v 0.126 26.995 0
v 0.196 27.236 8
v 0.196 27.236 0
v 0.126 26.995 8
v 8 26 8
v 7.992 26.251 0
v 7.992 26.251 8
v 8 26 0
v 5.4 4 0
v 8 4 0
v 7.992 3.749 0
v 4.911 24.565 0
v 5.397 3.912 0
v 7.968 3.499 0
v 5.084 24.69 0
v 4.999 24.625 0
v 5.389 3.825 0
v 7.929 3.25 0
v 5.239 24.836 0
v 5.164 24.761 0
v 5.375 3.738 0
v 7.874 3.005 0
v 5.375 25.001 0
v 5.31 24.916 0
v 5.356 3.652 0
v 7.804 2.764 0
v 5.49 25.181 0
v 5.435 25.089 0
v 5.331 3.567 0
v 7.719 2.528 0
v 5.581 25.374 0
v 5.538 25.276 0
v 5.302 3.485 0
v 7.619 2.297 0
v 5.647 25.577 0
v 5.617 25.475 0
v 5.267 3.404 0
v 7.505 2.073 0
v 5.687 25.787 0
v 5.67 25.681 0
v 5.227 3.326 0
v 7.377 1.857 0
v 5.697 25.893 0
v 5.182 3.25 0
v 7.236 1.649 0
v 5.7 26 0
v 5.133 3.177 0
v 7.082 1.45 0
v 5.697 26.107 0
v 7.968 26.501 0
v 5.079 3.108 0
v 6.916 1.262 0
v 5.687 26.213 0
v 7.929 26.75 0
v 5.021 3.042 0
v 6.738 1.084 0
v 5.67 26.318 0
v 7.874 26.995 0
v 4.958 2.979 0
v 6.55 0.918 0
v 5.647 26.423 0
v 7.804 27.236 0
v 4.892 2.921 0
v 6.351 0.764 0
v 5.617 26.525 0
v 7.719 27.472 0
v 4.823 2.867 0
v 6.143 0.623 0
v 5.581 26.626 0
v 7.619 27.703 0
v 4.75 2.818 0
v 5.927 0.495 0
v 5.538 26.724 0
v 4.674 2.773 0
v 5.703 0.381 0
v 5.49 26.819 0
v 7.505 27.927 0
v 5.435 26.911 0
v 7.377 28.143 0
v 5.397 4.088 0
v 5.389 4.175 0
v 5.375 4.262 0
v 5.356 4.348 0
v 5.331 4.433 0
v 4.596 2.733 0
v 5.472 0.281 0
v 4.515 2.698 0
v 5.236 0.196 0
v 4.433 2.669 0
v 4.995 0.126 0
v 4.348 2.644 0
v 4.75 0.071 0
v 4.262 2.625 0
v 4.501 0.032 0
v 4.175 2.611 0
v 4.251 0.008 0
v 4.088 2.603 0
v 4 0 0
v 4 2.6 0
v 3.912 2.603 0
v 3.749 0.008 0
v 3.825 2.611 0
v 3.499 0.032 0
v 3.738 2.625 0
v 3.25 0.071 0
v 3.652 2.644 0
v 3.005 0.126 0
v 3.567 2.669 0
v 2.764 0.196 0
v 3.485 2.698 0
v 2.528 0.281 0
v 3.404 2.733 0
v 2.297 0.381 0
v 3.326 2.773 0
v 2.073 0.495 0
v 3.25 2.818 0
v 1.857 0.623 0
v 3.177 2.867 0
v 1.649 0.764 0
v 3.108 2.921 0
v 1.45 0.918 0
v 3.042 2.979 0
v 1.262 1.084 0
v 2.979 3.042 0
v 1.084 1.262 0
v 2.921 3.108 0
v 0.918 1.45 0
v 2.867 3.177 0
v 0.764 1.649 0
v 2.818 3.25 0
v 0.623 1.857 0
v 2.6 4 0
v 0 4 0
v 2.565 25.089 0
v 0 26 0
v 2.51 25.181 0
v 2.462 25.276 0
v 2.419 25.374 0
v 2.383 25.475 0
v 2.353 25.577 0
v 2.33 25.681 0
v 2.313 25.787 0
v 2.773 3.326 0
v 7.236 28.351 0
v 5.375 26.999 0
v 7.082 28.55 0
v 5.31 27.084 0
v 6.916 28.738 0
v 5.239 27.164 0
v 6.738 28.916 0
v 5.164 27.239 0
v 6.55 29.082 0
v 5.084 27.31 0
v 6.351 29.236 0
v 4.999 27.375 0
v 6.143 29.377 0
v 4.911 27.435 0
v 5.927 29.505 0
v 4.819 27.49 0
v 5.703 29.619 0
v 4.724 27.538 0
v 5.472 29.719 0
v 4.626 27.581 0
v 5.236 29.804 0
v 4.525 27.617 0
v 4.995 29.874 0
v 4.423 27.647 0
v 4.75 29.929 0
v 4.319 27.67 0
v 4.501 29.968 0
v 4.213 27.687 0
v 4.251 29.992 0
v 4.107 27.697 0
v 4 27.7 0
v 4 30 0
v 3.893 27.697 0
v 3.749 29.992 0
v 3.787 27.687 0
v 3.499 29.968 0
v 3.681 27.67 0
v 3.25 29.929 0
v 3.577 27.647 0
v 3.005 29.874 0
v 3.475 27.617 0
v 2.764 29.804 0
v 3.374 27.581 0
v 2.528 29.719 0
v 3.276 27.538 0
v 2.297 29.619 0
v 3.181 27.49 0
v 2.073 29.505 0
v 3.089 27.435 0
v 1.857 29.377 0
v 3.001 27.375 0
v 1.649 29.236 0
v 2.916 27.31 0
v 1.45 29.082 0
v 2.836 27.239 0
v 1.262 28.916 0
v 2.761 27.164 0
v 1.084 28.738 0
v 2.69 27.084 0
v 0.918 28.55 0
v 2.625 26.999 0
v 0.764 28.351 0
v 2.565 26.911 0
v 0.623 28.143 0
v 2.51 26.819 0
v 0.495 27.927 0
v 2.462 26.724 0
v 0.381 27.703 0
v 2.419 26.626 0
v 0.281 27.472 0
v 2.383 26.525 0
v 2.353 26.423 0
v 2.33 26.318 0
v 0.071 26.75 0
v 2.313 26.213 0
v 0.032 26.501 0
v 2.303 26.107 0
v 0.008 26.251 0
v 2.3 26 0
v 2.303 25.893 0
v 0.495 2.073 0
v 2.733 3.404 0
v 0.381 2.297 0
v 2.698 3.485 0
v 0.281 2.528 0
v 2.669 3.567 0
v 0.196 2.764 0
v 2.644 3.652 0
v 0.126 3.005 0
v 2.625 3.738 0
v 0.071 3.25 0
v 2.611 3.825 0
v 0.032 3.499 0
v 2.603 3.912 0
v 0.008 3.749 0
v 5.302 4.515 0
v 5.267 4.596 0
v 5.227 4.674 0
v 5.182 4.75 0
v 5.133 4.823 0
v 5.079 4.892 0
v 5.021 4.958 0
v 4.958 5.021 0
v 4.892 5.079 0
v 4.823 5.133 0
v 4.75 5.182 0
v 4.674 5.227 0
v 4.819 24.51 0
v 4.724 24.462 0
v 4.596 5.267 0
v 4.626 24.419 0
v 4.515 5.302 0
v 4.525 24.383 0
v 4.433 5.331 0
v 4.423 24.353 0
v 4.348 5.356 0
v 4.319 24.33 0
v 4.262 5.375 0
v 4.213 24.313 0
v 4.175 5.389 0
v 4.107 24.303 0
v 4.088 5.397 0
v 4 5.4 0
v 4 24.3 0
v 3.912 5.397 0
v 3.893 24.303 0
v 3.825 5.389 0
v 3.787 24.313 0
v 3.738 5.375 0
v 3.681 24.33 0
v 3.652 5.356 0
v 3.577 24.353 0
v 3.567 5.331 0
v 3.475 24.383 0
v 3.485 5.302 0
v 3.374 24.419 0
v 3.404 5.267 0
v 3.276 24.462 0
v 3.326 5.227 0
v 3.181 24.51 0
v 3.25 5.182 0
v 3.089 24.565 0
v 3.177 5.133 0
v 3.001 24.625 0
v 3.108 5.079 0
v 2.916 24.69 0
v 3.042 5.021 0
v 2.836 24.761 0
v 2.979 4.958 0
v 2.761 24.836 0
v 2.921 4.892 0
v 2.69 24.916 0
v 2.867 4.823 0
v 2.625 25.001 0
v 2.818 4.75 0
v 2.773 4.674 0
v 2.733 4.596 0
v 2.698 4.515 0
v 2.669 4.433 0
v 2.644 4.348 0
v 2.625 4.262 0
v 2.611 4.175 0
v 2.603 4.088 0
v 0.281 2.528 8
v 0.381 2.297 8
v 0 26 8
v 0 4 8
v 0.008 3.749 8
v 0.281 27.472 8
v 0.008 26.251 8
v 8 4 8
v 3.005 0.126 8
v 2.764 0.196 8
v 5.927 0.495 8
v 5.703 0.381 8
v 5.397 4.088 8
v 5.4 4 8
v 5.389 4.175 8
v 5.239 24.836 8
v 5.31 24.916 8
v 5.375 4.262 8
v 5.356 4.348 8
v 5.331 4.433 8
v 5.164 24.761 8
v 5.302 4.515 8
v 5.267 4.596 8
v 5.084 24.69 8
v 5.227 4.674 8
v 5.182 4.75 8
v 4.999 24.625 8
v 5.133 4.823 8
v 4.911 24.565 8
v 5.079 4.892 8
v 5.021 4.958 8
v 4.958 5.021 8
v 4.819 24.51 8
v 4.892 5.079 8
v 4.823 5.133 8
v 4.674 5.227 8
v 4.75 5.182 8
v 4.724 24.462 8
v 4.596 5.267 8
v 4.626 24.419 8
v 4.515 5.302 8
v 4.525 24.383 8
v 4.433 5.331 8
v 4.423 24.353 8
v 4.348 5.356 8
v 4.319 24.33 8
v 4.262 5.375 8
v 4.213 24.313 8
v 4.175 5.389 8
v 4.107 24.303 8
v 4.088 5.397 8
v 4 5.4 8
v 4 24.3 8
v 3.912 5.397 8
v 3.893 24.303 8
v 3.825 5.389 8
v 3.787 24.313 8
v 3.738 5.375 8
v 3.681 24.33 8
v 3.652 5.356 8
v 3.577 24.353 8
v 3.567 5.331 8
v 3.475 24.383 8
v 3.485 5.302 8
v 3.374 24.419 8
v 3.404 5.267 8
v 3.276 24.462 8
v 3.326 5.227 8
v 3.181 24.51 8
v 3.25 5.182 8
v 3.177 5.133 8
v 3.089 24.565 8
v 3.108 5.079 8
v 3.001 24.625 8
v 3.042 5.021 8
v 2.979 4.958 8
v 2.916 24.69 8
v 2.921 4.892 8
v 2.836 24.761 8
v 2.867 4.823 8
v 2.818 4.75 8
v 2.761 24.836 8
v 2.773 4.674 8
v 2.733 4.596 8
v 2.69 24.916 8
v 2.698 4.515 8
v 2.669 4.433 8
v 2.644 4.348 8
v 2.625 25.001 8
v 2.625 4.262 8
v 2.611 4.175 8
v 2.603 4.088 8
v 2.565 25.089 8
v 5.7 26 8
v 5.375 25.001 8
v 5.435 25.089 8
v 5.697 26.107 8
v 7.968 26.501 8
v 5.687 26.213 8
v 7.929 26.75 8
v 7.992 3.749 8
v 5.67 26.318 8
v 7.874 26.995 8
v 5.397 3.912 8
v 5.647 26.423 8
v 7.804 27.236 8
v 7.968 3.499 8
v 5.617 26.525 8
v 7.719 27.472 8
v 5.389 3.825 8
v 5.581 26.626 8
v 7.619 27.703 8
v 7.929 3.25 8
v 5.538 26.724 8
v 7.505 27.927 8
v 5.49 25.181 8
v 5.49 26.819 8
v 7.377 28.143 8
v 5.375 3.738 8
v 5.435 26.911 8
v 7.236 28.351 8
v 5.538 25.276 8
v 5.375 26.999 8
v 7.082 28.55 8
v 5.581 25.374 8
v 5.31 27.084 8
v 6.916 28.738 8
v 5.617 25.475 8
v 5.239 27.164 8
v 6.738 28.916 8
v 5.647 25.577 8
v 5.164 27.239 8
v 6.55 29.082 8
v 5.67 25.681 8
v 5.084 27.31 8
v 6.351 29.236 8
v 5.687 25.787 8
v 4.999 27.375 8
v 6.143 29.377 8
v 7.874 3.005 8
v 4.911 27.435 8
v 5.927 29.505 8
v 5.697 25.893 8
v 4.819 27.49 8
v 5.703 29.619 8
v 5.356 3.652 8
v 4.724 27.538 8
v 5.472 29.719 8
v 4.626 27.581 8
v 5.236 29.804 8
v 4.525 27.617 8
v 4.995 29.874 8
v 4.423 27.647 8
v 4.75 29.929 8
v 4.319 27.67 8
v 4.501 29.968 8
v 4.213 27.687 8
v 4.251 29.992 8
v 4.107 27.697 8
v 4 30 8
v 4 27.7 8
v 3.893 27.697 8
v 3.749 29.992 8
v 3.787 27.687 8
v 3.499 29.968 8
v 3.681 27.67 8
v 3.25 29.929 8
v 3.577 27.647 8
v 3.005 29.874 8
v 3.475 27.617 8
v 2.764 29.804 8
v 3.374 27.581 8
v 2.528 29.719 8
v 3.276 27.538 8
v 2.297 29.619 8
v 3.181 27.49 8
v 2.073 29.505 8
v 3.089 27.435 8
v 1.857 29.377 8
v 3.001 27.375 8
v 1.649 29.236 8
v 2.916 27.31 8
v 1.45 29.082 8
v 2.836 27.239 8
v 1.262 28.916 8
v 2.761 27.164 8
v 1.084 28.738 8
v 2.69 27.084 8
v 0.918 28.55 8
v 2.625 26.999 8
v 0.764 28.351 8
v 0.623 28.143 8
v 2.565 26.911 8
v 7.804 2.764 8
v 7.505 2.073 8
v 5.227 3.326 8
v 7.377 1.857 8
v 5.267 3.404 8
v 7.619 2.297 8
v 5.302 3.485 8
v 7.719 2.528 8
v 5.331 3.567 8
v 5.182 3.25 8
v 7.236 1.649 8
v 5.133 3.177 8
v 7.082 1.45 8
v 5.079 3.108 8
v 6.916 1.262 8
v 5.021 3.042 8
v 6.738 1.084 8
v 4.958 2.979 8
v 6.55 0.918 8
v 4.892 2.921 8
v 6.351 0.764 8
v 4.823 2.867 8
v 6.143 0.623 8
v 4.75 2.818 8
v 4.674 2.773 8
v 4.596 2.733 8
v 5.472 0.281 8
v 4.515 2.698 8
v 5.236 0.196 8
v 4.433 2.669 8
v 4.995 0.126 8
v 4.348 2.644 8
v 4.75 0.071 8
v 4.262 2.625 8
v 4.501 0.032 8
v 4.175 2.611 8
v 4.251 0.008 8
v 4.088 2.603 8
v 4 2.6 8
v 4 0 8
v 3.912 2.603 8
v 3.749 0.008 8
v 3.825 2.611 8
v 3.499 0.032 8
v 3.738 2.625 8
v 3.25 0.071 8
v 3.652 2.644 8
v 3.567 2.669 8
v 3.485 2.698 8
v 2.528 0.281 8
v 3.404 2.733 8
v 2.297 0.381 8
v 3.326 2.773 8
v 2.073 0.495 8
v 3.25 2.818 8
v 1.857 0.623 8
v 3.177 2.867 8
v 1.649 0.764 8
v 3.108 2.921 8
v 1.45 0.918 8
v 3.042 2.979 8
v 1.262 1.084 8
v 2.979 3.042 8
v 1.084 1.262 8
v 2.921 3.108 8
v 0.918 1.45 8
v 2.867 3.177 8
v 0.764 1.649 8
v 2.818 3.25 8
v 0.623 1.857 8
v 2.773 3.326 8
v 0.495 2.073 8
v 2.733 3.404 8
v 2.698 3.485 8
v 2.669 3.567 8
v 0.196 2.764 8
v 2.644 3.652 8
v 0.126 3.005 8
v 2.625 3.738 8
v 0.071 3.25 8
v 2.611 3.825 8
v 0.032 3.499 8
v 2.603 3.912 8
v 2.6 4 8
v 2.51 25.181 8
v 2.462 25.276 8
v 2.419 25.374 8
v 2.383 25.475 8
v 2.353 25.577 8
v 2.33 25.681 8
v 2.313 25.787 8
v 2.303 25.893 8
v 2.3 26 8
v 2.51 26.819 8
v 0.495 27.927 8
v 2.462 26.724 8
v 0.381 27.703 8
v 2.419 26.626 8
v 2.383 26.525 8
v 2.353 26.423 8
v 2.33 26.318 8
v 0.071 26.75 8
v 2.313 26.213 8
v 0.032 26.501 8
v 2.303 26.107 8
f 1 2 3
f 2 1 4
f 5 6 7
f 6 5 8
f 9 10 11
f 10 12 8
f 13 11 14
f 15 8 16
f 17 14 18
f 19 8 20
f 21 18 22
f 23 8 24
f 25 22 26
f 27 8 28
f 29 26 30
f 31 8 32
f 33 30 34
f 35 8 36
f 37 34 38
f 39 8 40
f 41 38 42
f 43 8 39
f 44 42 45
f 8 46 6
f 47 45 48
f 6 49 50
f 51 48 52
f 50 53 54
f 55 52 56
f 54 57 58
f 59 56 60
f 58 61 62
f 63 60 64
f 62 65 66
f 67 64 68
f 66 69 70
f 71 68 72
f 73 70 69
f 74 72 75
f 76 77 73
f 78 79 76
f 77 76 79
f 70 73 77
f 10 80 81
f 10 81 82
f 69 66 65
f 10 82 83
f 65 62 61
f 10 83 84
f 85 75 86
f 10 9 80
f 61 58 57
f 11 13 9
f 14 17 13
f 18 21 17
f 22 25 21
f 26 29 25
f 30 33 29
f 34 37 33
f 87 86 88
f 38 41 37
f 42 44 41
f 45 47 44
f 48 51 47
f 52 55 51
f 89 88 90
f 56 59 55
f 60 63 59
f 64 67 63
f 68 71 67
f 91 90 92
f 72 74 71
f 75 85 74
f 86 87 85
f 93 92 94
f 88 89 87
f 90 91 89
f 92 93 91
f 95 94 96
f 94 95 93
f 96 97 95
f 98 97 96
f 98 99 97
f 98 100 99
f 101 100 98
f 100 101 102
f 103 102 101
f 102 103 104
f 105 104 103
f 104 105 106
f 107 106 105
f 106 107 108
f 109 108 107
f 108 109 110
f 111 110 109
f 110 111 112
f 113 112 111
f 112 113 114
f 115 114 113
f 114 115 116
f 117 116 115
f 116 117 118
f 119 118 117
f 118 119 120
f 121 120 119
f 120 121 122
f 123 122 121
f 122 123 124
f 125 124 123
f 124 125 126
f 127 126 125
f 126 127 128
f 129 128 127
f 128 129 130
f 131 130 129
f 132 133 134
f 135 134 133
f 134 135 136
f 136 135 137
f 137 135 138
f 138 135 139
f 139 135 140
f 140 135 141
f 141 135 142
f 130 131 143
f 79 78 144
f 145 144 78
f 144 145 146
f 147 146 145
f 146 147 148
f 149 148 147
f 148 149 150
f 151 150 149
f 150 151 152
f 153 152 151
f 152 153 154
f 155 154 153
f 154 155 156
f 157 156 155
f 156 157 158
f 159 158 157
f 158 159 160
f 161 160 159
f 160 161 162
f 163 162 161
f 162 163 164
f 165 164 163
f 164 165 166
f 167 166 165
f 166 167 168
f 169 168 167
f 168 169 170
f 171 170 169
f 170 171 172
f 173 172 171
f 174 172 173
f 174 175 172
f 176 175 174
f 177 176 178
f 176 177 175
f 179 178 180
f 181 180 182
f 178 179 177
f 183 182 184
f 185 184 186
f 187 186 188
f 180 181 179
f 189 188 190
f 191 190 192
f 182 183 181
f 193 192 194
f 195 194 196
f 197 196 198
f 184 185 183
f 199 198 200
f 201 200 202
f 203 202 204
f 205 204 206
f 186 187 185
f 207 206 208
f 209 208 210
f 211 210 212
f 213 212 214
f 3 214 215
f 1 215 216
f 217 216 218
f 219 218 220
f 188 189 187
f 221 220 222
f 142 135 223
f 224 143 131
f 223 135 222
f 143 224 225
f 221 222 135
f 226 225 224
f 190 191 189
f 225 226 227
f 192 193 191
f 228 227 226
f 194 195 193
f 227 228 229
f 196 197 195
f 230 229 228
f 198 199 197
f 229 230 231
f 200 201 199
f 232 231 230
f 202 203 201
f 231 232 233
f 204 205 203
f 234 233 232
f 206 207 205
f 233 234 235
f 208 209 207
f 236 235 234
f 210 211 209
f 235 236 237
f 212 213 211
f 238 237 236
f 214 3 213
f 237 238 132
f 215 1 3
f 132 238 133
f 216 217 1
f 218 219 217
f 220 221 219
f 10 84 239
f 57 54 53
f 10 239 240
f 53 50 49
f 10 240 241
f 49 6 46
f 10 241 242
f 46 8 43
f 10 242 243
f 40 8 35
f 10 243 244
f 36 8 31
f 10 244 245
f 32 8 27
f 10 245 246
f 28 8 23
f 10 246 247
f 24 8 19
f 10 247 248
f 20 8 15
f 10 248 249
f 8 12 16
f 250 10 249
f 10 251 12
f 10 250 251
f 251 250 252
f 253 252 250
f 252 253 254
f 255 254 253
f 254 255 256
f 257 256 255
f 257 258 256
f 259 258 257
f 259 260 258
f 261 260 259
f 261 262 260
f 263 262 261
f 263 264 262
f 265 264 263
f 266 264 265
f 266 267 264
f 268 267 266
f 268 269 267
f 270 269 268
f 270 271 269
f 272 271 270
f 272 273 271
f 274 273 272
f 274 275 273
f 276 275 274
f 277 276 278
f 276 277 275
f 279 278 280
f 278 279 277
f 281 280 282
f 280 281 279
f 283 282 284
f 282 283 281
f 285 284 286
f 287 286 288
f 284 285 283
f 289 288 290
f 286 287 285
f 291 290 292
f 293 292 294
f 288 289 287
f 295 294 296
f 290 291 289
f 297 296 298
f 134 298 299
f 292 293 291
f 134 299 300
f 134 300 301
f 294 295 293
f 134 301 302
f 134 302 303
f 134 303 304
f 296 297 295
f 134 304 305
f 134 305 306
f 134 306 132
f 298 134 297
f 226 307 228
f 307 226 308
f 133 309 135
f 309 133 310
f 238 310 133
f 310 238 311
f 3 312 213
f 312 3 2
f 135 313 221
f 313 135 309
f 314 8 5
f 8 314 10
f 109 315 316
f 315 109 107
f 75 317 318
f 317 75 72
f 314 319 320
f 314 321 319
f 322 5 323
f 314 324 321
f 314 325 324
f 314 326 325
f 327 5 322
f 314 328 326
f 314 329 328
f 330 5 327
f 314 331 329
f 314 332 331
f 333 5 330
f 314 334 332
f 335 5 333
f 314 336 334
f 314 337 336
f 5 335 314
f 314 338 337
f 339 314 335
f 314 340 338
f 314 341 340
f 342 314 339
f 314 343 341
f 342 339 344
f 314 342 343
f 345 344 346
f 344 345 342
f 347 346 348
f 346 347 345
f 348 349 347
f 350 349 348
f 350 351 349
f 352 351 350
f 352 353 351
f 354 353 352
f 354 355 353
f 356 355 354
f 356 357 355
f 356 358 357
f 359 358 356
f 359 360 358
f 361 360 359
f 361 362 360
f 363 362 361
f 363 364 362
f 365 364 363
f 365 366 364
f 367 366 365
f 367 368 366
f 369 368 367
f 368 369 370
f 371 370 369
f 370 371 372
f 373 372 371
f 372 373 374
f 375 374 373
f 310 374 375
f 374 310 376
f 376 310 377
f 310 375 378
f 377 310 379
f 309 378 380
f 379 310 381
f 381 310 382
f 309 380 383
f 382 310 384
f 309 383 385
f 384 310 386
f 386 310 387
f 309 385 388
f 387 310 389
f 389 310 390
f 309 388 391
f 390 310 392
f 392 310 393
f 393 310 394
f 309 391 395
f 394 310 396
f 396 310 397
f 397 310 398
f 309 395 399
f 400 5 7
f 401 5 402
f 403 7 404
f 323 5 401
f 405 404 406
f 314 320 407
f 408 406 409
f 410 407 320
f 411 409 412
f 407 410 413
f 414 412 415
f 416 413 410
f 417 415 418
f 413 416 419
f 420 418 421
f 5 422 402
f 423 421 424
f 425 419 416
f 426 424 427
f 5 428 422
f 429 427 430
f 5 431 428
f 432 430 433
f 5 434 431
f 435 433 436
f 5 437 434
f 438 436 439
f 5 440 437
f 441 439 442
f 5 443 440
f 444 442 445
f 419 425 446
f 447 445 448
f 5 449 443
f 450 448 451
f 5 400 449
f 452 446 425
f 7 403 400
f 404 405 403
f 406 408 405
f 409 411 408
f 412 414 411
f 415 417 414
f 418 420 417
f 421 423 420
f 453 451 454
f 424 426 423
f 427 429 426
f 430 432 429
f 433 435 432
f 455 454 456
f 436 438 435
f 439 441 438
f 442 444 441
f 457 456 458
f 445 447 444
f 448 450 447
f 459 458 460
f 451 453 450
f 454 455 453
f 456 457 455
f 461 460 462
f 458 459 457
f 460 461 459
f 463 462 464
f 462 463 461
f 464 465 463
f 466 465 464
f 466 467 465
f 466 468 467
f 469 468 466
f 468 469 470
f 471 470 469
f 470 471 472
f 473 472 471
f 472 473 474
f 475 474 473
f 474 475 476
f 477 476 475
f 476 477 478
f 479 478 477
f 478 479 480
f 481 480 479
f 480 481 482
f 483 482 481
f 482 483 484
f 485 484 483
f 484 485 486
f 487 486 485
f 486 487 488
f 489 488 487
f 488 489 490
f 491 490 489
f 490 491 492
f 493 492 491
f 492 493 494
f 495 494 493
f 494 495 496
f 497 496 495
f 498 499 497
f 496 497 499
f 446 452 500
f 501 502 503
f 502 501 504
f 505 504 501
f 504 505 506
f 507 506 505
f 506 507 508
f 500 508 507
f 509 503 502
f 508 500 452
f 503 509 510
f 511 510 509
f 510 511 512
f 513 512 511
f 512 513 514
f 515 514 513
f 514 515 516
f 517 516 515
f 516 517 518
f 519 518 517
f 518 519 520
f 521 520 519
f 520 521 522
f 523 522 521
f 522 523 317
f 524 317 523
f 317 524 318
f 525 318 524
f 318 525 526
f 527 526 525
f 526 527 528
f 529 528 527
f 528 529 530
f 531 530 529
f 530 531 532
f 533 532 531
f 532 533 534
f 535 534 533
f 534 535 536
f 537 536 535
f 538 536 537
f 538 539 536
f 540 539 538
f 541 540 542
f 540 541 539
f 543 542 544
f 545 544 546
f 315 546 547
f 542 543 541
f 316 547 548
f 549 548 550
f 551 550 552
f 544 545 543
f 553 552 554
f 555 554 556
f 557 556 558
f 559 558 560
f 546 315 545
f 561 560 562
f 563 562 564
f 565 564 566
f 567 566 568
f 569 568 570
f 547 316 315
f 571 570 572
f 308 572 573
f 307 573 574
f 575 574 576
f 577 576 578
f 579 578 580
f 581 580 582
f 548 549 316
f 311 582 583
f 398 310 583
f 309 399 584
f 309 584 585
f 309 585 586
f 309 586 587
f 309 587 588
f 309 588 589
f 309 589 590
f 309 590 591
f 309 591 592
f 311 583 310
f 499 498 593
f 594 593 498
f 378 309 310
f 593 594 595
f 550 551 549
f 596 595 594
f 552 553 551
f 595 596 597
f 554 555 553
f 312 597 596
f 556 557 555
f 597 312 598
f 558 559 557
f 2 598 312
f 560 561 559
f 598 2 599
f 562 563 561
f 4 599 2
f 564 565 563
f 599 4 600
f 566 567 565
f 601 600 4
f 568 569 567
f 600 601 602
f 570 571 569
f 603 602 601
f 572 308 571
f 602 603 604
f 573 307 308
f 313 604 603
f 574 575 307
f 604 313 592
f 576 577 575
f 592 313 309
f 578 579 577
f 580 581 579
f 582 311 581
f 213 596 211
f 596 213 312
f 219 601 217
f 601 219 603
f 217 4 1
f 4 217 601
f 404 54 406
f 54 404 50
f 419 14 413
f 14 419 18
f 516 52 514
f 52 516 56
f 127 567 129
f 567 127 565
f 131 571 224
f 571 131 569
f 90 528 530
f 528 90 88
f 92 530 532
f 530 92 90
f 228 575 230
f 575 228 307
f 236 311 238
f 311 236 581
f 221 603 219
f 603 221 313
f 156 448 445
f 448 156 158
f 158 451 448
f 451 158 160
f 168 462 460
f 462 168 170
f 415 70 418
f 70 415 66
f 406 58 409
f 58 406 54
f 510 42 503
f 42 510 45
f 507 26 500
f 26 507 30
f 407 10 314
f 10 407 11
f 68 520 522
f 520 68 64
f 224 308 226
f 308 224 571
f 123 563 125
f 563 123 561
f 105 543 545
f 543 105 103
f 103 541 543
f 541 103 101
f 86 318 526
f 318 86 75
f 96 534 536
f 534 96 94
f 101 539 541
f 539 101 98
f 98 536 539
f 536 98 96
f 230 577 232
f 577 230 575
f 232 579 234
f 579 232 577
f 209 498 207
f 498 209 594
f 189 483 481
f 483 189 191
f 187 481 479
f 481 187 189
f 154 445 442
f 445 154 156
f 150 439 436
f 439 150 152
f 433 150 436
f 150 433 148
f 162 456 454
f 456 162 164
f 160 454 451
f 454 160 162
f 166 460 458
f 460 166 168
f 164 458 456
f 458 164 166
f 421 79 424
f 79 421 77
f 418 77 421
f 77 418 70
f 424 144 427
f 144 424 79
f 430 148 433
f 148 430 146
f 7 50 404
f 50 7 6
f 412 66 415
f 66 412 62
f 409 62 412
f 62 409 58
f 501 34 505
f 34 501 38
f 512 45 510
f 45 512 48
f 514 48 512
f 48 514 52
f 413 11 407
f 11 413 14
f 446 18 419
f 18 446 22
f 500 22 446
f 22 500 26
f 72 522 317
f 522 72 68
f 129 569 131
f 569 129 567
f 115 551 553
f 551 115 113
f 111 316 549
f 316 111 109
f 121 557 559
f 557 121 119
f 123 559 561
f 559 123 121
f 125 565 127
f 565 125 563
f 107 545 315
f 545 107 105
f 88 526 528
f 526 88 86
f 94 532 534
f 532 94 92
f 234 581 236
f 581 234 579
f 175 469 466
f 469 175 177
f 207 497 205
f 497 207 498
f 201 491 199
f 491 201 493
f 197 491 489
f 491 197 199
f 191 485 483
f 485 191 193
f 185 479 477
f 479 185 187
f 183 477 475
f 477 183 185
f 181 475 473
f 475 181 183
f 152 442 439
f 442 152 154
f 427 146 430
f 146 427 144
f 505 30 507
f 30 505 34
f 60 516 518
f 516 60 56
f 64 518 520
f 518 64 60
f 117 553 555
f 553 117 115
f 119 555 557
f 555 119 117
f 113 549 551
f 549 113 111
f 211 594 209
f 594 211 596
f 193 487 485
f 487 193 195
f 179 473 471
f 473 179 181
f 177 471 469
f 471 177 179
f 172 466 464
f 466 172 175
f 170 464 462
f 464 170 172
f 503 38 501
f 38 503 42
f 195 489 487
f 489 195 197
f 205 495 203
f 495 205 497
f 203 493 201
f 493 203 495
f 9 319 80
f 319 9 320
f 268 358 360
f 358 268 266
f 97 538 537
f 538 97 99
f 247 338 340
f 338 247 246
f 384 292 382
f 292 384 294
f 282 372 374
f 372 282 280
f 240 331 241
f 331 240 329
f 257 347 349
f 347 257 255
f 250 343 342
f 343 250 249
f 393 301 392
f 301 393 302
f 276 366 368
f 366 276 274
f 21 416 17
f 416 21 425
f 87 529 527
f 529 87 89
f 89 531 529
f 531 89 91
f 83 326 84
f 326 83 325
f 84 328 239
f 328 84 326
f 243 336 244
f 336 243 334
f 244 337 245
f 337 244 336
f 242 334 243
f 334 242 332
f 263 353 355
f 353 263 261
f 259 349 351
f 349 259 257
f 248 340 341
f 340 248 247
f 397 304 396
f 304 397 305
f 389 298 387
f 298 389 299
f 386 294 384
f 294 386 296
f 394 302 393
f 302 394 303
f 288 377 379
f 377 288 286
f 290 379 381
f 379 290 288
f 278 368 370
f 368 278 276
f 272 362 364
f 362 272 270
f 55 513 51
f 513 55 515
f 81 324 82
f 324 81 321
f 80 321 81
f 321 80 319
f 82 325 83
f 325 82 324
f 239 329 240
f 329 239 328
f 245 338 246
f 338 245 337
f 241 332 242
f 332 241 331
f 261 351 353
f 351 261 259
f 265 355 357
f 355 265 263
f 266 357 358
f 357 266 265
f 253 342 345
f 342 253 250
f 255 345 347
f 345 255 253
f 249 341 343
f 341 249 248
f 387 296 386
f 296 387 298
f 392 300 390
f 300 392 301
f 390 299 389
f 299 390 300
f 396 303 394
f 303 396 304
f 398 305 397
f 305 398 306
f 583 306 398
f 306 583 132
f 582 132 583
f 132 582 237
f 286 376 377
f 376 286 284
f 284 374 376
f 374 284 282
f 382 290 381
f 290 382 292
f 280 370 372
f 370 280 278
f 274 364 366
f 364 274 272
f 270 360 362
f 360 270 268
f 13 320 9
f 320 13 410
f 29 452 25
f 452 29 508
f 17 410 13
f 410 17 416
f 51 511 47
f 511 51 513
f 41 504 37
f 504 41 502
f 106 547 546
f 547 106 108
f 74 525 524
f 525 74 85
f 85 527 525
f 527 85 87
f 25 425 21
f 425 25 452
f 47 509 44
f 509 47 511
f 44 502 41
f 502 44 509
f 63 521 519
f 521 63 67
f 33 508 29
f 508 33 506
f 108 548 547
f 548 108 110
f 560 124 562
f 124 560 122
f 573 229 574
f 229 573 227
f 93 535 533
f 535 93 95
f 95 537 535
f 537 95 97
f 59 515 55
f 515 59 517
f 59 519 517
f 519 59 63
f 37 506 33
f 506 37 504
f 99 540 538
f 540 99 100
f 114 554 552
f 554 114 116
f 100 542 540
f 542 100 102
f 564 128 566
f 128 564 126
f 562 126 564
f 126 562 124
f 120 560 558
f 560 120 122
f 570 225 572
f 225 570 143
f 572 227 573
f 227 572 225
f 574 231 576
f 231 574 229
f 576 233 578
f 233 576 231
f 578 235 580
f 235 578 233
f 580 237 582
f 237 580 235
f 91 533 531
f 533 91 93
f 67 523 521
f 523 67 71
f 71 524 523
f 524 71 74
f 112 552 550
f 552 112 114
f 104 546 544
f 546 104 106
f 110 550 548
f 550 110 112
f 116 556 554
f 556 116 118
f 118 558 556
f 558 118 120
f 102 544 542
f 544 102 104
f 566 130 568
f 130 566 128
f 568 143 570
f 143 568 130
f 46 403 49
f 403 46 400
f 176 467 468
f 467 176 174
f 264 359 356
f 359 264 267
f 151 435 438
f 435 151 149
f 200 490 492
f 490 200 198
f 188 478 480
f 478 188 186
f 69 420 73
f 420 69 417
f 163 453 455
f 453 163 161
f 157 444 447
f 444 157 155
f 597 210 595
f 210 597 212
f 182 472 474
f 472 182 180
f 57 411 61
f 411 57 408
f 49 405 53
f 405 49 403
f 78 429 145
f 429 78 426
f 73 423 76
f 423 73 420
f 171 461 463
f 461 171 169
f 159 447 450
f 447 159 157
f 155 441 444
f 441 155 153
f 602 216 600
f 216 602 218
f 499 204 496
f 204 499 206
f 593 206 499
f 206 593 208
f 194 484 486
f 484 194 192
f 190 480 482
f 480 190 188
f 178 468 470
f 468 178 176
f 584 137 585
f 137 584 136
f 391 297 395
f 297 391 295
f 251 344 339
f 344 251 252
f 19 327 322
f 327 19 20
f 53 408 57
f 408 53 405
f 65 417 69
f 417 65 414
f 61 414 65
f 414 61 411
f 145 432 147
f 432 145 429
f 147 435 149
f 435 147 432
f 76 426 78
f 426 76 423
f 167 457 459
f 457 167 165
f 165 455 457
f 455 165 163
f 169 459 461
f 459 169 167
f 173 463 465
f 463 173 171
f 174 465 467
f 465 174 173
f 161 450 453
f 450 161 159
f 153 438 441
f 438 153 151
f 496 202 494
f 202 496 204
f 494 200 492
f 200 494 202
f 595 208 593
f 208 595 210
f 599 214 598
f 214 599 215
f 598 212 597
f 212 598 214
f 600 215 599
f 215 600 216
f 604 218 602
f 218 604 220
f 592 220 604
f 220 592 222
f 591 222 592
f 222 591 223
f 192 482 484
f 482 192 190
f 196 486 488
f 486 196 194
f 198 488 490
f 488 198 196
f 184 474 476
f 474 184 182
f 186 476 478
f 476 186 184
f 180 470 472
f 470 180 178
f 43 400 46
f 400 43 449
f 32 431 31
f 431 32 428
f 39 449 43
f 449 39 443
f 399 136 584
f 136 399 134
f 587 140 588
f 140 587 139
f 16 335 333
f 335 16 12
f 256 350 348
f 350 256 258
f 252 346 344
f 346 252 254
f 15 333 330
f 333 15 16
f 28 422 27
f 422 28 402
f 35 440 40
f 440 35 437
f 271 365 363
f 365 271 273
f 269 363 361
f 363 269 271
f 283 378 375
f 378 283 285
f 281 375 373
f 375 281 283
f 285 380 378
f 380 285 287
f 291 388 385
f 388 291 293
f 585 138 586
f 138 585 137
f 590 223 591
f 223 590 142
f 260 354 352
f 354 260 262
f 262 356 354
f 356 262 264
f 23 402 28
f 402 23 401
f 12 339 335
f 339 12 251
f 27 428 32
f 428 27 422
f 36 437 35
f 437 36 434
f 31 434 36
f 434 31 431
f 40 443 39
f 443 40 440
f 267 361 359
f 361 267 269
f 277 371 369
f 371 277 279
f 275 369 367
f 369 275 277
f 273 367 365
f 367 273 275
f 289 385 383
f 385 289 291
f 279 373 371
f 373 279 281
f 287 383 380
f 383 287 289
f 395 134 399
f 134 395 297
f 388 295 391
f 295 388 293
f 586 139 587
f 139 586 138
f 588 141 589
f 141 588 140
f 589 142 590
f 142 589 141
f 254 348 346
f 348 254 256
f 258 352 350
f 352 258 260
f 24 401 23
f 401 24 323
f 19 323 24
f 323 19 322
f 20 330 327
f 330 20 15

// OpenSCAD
$fn = 100;

module CameraArm(){
    difference(){
        hull(){
            translate([4, 4, 0]){ cylinder(r = 4, h = 8); }
            translate([4, 26, 0]){ cylinder(r = 4, h = 8); }
        }
        
        translate([4, 4, -1]){ cylinder(r = 1.4, h = 10); }
        translate([4, 26, -1]){ cylinder(r = 1.7, h = 10); }
    }
}

CameraArm();
